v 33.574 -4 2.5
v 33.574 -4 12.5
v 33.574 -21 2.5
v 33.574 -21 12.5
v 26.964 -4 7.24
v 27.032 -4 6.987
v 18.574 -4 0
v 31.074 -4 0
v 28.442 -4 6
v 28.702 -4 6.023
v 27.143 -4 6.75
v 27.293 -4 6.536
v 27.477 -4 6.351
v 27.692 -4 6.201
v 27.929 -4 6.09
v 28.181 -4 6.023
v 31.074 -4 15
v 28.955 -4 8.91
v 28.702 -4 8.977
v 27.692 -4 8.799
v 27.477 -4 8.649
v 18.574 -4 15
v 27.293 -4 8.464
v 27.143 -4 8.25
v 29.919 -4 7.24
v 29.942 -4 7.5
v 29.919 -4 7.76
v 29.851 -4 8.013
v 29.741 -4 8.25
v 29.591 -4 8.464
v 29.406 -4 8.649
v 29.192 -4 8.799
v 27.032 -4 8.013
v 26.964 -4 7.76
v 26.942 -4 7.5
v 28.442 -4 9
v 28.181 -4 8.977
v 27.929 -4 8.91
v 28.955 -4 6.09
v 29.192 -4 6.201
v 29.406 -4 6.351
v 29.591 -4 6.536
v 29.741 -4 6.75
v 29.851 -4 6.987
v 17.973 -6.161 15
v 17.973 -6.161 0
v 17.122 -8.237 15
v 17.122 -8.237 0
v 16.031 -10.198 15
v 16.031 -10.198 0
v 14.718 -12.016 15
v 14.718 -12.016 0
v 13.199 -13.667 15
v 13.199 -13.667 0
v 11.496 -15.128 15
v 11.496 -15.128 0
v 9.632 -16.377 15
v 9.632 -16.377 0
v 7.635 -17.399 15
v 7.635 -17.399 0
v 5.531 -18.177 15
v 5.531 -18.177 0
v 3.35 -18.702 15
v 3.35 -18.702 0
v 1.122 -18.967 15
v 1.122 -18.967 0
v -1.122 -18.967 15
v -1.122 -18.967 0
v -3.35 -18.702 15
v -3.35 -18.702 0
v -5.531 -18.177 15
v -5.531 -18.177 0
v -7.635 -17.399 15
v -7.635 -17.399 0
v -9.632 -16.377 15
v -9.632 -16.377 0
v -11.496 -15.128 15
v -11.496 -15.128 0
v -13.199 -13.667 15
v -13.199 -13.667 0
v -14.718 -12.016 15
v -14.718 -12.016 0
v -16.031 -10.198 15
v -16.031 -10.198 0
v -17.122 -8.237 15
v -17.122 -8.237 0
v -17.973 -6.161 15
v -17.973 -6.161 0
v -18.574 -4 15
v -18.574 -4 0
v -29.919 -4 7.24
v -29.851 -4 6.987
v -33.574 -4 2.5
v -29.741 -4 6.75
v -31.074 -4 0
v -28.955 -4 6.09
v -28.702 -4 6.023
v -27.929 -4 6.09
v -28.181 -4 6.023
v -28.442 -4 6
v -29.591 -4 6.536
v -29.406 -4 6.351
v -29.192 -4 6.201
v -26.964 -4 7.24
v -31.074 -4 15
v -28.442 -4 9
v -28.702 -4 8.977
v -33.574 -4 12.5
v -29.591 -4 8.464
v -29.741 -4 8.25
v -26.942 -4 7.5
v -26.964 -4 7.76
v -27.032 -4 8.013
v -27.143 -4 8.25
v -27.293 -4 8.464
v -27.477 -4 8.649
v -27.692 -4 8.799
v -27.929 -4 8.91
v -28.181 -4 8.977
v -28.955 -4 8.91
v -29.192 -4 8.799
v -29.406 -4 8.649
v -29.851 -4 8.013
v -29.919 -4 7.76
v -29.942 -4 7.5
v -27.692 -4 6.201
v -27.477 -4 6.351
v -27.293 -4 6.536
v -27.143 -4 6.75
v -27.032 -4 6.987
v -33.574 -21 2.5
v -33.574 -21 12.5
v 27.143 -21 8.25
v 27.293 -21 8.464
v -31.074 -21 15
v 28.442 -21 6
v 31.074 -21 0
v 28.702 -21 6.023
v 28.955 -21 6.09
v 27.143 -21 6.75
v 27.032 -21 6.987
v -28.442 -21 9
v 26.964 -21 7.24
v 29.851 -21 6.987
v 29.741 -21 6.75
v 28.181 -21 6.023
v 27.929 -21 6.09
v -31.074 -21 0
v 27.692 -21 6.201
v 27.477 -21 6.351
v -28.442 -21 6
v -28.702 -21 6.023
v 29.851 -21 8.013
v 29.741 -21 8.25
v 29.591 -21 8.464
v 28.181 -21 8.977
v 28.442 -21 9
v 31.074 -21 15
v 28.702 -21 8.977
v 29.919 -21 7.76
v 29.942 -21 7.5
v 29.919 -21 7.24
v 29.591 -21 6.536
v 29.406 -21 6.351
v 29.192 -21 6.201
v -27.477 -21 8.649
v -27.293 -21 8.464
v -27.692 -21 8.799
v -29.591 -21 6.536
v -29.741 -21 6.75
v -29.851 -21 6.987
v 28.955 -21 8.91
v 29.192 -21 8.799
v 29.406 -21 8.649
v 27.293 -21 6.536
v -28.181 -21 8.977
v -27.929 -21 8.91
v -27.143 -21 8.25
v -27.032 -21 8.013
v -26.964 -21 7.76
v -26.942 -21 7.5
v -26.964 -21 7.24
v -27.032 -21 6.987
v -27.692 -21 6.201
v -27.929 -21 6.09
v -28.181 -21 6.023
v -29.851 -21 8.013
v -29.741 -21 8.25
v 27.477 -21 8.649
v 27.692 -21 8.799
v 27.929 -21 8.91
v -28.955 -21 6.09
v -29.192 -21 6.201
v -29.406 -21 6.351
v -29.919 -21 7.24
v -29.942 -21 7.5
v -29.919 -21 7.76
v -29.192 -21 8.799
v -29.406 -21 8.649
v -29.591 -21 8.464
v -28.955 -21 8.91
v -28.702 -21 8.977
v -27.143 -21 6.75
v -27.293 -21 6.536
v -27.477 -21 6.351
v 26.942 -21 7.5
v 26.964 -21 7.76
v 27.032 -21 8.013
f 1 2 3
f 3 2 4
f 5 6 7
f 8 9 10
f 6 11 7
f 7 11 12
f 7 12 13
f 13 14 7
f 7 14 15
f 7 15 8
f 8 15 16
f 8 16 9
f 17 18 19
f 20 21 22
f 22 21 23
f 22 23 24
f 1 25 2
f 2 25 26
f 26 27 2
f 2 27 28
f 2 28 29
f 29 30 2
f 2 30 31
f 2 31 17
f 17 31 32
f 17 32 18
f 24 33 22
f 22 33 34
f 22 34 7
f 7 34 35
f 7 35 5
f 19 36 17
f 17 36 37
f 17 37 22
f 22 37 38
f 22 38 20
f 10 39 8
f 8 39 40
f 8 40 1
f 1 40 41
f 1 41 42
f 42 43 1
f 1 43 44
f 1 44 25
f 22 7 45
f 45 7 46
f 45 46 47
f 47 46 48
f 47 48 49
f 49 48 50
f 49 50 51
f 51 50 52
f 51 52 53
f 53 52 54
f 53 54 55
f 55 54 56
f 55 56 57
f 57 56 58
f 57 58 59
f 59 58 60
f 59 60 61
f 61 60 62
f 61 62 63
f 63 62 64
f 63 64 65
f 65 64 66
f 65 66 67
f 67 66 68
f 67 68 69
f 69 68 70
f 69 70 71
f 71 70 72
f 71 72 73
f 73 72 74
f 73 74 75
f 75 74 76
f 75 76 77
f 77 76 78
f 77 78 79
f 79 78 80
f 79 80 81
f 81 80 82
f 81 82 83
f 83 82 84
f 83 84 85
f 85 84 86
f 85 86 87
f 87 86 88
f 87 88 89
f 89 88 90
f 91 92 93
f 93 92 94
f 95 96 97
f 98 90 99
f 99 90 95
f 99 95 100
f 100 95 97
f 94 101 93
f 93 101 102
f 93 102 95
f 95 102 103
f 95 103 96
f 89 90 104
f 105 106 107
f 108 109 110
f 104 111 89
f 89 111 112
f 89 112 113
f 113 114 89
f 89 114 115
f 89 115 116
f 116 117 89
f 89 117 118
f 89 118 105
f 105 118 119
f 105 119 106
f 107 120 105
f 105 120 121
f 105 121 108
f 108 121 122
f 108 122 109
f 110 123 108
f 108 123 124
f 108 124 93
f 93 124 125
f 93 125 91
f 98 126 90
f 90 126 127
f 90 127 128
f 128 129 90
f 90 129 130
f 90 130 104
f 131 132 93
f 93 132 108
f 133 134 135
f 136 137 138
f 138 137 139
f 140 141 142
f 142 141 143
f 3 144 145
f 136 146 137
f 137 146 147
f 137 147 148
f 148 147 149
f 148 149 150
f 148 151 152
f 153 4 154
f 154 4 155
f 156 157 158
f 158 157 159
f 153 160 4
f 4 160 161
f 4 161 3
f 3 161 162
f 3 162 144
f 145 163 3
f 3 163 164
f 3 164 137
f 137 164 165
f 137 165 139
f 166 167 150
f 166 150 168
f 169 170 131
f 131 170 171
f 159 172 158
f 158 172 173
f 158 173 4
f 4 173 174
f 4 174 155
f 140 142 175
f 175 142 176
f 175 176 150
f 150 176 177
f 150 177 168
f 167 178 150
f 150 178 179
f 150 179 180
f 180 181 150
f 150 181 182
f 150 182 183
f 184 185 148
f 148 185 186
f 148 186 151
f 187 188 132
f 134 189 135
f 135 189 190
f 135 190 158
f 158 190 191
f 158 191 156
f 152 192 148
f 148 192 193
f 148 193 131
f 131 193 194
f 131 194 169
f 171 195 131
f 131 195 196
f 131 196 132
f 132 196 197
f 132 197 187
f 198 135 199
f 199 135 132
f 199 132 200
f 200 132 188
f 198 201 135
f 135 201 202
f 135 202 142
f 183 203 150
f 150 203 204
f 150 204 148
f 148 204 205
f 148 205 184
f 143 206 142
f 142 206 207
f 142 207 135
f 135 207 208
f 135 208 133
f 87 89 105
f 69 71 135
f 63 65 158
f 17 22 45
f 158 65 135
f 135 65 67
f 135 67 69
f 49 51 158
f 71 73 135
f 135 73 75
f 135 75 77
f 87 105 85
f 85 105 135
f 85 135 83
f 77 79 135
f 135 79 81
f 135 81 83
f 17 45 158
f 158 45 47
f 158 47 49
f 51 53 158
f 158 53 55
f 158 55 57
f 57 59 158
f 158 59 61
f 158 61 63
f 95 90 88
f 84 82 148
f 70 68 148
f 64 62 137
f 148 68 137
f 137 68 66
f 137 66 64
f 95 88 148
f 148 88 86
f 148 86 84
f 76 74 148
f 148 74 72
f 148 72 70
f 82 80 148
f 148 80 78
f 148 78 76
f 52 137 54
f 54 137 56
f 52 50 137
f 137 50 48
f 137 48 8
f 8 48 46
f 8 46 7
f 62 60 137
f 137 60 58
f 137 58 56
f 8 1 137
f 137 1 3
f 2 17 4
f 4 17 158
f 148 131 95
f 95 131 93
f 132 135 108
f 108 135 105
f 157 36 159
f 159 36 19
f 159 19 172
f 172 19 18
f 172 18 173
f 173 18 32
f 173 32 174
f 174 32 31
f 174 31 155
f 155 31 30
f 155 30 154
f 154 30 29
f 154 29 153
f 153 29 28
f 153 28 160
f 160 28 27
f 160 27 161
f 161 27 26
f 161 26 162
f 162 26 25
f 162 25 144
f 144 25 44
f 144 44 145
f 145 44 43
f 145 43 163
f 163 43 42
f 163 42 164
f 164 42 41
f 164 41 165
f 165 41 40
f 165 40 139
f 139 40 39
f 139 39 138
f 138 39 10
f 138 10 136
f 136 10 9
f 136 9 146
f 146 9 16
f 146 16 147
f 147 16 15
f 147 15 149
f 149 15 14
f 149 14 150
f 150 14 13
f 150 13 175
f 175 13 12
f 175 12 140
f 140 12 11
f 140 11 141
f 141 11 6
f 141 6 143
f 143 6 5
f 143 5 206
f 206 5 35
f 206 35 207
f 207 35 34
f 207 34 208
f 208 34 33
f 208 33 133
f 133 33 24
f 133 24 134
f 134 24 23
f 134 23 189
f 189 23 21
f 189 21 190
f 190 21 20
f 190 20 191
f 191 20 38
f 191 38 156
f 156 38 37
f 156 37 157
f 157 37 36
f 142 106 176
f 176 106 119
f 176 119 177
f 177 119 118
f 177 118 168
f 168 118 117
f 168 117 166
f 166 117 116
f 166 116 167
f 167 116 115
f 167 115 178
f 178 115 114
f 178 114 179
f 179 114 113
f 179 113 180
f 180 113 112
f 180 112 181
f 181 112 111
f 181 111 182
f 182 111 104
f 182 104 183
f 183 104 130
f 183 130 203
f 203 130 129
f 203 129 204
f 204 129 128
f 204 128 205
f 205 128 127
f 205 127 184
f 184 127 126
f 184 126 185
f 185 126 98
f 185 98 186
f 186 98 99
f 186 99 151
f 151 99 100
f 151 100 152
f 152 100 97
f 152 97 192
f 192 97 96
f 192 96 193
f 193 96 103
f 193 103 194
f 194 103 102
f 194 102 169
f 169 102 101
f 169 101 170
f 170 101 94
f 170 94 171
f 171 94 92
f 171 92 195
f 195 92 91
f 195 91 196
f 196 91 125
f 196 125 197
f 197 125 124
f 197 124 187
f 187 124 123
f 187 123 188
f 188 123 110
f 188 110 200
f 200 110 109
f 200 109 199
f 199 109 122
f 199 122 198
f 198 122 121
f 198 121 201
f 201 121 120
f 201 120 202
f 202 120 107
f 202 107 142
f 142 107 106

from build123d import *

# Parameters (mm, degrees)
BOSS_EXTRUDE1_DEPTH       = 15
CHAMFER1_SIZE             = 2.5
SKETCH2_R                 = 1.4
CUT_EXTRUDE1_DEPTH        = 41.512038564
F_3_0MM_DOWEL_HOLE1_D     = 3
F_3_0MM_DOWEL_HOLE1_DEPTH = 31.098709071
F_3_0MM_DOWEL_HOLE1_TIP   = 0.901290929


with BuildPart() as part:
    # Sketch1 → Boss-Extrude1 (new body)
    with BuildSketch(Plane.XY):
        with BuildLine():
            Line((-18.574175621, -4), (-33.574175621, -4))
            Line((-33.574175621, -4), (-33.574175621, -21))
            Line((-33.574175621, -21), (33.574175621, -21))
            Line((33.574175621, -21), (33.574175621, -4))
            Line((33.574175621, -4), (18.574175621, -4))
            ThreePointArc((18.574175621, -4), (0, -19), (-18.574175621, -4))
        make_face()
    extrude(amount=BOSS_EXTRUDE1_DEPTH)

    # Chamfer1
    chamfer1_edges = [part.edges().sort_by_distance(p)[0] for p in [
        (-33.574175621, -12.5, 15),
        (33.574175621, -12.5, 15),
        (-33.574175621, -12.5, 0),
        (33.574175621, -12.5, 0),
    ]]
    chamfer(chamfer1_edges, length=CHAMFER1_SIZE)

    # Sketch2 → Cut-Extrude1 (cut, through all)
    with BuildSketch(Plane(origin=(0, -4, 0), x_dir=(1, 0, 0), z_dir=(0, 1, 0))):
        with Locations(Location((28.441617262, -7.5, 0), (0, 0, 180))):
            Circle(SKETCH2_R)
        with Locations((-28.441617262, -7.5)):
            Circle(SKETCH2_R)
    extrude(amount=-CUT_EXTRUDE1_DEPTH, mode=Mode.SUBTRACT)

    # Ø3.0mm Dowel Hole1
    with Locations(Plane(origin=(0, -4, 0), x_dir=(1, 0, 0), z_dir=(0, 1, 0))):
        with Locations((-28.441617262, -7.5), (28.441617262, -7.5)):
            Hole(F_3_0MM_DOWEL_HOLE1_D / 2, depth=F_3_0MM_DOWEL_HOLE1_DEPTH)
            with Locations((0, 0, -(F_3_0MM_DOWEL_HOLE1_DEPTH + F_3_0MM_DOWEL_HOLE1_TIP / 2))):  # 118° drill point
                Cone(0, F_3_0MM_DOWEL_HOLE1_D / 2, F_3_0MM_DOWEL_HOLE1_TIP, mode=Mode.SUBTRACT)


solid = part.part
